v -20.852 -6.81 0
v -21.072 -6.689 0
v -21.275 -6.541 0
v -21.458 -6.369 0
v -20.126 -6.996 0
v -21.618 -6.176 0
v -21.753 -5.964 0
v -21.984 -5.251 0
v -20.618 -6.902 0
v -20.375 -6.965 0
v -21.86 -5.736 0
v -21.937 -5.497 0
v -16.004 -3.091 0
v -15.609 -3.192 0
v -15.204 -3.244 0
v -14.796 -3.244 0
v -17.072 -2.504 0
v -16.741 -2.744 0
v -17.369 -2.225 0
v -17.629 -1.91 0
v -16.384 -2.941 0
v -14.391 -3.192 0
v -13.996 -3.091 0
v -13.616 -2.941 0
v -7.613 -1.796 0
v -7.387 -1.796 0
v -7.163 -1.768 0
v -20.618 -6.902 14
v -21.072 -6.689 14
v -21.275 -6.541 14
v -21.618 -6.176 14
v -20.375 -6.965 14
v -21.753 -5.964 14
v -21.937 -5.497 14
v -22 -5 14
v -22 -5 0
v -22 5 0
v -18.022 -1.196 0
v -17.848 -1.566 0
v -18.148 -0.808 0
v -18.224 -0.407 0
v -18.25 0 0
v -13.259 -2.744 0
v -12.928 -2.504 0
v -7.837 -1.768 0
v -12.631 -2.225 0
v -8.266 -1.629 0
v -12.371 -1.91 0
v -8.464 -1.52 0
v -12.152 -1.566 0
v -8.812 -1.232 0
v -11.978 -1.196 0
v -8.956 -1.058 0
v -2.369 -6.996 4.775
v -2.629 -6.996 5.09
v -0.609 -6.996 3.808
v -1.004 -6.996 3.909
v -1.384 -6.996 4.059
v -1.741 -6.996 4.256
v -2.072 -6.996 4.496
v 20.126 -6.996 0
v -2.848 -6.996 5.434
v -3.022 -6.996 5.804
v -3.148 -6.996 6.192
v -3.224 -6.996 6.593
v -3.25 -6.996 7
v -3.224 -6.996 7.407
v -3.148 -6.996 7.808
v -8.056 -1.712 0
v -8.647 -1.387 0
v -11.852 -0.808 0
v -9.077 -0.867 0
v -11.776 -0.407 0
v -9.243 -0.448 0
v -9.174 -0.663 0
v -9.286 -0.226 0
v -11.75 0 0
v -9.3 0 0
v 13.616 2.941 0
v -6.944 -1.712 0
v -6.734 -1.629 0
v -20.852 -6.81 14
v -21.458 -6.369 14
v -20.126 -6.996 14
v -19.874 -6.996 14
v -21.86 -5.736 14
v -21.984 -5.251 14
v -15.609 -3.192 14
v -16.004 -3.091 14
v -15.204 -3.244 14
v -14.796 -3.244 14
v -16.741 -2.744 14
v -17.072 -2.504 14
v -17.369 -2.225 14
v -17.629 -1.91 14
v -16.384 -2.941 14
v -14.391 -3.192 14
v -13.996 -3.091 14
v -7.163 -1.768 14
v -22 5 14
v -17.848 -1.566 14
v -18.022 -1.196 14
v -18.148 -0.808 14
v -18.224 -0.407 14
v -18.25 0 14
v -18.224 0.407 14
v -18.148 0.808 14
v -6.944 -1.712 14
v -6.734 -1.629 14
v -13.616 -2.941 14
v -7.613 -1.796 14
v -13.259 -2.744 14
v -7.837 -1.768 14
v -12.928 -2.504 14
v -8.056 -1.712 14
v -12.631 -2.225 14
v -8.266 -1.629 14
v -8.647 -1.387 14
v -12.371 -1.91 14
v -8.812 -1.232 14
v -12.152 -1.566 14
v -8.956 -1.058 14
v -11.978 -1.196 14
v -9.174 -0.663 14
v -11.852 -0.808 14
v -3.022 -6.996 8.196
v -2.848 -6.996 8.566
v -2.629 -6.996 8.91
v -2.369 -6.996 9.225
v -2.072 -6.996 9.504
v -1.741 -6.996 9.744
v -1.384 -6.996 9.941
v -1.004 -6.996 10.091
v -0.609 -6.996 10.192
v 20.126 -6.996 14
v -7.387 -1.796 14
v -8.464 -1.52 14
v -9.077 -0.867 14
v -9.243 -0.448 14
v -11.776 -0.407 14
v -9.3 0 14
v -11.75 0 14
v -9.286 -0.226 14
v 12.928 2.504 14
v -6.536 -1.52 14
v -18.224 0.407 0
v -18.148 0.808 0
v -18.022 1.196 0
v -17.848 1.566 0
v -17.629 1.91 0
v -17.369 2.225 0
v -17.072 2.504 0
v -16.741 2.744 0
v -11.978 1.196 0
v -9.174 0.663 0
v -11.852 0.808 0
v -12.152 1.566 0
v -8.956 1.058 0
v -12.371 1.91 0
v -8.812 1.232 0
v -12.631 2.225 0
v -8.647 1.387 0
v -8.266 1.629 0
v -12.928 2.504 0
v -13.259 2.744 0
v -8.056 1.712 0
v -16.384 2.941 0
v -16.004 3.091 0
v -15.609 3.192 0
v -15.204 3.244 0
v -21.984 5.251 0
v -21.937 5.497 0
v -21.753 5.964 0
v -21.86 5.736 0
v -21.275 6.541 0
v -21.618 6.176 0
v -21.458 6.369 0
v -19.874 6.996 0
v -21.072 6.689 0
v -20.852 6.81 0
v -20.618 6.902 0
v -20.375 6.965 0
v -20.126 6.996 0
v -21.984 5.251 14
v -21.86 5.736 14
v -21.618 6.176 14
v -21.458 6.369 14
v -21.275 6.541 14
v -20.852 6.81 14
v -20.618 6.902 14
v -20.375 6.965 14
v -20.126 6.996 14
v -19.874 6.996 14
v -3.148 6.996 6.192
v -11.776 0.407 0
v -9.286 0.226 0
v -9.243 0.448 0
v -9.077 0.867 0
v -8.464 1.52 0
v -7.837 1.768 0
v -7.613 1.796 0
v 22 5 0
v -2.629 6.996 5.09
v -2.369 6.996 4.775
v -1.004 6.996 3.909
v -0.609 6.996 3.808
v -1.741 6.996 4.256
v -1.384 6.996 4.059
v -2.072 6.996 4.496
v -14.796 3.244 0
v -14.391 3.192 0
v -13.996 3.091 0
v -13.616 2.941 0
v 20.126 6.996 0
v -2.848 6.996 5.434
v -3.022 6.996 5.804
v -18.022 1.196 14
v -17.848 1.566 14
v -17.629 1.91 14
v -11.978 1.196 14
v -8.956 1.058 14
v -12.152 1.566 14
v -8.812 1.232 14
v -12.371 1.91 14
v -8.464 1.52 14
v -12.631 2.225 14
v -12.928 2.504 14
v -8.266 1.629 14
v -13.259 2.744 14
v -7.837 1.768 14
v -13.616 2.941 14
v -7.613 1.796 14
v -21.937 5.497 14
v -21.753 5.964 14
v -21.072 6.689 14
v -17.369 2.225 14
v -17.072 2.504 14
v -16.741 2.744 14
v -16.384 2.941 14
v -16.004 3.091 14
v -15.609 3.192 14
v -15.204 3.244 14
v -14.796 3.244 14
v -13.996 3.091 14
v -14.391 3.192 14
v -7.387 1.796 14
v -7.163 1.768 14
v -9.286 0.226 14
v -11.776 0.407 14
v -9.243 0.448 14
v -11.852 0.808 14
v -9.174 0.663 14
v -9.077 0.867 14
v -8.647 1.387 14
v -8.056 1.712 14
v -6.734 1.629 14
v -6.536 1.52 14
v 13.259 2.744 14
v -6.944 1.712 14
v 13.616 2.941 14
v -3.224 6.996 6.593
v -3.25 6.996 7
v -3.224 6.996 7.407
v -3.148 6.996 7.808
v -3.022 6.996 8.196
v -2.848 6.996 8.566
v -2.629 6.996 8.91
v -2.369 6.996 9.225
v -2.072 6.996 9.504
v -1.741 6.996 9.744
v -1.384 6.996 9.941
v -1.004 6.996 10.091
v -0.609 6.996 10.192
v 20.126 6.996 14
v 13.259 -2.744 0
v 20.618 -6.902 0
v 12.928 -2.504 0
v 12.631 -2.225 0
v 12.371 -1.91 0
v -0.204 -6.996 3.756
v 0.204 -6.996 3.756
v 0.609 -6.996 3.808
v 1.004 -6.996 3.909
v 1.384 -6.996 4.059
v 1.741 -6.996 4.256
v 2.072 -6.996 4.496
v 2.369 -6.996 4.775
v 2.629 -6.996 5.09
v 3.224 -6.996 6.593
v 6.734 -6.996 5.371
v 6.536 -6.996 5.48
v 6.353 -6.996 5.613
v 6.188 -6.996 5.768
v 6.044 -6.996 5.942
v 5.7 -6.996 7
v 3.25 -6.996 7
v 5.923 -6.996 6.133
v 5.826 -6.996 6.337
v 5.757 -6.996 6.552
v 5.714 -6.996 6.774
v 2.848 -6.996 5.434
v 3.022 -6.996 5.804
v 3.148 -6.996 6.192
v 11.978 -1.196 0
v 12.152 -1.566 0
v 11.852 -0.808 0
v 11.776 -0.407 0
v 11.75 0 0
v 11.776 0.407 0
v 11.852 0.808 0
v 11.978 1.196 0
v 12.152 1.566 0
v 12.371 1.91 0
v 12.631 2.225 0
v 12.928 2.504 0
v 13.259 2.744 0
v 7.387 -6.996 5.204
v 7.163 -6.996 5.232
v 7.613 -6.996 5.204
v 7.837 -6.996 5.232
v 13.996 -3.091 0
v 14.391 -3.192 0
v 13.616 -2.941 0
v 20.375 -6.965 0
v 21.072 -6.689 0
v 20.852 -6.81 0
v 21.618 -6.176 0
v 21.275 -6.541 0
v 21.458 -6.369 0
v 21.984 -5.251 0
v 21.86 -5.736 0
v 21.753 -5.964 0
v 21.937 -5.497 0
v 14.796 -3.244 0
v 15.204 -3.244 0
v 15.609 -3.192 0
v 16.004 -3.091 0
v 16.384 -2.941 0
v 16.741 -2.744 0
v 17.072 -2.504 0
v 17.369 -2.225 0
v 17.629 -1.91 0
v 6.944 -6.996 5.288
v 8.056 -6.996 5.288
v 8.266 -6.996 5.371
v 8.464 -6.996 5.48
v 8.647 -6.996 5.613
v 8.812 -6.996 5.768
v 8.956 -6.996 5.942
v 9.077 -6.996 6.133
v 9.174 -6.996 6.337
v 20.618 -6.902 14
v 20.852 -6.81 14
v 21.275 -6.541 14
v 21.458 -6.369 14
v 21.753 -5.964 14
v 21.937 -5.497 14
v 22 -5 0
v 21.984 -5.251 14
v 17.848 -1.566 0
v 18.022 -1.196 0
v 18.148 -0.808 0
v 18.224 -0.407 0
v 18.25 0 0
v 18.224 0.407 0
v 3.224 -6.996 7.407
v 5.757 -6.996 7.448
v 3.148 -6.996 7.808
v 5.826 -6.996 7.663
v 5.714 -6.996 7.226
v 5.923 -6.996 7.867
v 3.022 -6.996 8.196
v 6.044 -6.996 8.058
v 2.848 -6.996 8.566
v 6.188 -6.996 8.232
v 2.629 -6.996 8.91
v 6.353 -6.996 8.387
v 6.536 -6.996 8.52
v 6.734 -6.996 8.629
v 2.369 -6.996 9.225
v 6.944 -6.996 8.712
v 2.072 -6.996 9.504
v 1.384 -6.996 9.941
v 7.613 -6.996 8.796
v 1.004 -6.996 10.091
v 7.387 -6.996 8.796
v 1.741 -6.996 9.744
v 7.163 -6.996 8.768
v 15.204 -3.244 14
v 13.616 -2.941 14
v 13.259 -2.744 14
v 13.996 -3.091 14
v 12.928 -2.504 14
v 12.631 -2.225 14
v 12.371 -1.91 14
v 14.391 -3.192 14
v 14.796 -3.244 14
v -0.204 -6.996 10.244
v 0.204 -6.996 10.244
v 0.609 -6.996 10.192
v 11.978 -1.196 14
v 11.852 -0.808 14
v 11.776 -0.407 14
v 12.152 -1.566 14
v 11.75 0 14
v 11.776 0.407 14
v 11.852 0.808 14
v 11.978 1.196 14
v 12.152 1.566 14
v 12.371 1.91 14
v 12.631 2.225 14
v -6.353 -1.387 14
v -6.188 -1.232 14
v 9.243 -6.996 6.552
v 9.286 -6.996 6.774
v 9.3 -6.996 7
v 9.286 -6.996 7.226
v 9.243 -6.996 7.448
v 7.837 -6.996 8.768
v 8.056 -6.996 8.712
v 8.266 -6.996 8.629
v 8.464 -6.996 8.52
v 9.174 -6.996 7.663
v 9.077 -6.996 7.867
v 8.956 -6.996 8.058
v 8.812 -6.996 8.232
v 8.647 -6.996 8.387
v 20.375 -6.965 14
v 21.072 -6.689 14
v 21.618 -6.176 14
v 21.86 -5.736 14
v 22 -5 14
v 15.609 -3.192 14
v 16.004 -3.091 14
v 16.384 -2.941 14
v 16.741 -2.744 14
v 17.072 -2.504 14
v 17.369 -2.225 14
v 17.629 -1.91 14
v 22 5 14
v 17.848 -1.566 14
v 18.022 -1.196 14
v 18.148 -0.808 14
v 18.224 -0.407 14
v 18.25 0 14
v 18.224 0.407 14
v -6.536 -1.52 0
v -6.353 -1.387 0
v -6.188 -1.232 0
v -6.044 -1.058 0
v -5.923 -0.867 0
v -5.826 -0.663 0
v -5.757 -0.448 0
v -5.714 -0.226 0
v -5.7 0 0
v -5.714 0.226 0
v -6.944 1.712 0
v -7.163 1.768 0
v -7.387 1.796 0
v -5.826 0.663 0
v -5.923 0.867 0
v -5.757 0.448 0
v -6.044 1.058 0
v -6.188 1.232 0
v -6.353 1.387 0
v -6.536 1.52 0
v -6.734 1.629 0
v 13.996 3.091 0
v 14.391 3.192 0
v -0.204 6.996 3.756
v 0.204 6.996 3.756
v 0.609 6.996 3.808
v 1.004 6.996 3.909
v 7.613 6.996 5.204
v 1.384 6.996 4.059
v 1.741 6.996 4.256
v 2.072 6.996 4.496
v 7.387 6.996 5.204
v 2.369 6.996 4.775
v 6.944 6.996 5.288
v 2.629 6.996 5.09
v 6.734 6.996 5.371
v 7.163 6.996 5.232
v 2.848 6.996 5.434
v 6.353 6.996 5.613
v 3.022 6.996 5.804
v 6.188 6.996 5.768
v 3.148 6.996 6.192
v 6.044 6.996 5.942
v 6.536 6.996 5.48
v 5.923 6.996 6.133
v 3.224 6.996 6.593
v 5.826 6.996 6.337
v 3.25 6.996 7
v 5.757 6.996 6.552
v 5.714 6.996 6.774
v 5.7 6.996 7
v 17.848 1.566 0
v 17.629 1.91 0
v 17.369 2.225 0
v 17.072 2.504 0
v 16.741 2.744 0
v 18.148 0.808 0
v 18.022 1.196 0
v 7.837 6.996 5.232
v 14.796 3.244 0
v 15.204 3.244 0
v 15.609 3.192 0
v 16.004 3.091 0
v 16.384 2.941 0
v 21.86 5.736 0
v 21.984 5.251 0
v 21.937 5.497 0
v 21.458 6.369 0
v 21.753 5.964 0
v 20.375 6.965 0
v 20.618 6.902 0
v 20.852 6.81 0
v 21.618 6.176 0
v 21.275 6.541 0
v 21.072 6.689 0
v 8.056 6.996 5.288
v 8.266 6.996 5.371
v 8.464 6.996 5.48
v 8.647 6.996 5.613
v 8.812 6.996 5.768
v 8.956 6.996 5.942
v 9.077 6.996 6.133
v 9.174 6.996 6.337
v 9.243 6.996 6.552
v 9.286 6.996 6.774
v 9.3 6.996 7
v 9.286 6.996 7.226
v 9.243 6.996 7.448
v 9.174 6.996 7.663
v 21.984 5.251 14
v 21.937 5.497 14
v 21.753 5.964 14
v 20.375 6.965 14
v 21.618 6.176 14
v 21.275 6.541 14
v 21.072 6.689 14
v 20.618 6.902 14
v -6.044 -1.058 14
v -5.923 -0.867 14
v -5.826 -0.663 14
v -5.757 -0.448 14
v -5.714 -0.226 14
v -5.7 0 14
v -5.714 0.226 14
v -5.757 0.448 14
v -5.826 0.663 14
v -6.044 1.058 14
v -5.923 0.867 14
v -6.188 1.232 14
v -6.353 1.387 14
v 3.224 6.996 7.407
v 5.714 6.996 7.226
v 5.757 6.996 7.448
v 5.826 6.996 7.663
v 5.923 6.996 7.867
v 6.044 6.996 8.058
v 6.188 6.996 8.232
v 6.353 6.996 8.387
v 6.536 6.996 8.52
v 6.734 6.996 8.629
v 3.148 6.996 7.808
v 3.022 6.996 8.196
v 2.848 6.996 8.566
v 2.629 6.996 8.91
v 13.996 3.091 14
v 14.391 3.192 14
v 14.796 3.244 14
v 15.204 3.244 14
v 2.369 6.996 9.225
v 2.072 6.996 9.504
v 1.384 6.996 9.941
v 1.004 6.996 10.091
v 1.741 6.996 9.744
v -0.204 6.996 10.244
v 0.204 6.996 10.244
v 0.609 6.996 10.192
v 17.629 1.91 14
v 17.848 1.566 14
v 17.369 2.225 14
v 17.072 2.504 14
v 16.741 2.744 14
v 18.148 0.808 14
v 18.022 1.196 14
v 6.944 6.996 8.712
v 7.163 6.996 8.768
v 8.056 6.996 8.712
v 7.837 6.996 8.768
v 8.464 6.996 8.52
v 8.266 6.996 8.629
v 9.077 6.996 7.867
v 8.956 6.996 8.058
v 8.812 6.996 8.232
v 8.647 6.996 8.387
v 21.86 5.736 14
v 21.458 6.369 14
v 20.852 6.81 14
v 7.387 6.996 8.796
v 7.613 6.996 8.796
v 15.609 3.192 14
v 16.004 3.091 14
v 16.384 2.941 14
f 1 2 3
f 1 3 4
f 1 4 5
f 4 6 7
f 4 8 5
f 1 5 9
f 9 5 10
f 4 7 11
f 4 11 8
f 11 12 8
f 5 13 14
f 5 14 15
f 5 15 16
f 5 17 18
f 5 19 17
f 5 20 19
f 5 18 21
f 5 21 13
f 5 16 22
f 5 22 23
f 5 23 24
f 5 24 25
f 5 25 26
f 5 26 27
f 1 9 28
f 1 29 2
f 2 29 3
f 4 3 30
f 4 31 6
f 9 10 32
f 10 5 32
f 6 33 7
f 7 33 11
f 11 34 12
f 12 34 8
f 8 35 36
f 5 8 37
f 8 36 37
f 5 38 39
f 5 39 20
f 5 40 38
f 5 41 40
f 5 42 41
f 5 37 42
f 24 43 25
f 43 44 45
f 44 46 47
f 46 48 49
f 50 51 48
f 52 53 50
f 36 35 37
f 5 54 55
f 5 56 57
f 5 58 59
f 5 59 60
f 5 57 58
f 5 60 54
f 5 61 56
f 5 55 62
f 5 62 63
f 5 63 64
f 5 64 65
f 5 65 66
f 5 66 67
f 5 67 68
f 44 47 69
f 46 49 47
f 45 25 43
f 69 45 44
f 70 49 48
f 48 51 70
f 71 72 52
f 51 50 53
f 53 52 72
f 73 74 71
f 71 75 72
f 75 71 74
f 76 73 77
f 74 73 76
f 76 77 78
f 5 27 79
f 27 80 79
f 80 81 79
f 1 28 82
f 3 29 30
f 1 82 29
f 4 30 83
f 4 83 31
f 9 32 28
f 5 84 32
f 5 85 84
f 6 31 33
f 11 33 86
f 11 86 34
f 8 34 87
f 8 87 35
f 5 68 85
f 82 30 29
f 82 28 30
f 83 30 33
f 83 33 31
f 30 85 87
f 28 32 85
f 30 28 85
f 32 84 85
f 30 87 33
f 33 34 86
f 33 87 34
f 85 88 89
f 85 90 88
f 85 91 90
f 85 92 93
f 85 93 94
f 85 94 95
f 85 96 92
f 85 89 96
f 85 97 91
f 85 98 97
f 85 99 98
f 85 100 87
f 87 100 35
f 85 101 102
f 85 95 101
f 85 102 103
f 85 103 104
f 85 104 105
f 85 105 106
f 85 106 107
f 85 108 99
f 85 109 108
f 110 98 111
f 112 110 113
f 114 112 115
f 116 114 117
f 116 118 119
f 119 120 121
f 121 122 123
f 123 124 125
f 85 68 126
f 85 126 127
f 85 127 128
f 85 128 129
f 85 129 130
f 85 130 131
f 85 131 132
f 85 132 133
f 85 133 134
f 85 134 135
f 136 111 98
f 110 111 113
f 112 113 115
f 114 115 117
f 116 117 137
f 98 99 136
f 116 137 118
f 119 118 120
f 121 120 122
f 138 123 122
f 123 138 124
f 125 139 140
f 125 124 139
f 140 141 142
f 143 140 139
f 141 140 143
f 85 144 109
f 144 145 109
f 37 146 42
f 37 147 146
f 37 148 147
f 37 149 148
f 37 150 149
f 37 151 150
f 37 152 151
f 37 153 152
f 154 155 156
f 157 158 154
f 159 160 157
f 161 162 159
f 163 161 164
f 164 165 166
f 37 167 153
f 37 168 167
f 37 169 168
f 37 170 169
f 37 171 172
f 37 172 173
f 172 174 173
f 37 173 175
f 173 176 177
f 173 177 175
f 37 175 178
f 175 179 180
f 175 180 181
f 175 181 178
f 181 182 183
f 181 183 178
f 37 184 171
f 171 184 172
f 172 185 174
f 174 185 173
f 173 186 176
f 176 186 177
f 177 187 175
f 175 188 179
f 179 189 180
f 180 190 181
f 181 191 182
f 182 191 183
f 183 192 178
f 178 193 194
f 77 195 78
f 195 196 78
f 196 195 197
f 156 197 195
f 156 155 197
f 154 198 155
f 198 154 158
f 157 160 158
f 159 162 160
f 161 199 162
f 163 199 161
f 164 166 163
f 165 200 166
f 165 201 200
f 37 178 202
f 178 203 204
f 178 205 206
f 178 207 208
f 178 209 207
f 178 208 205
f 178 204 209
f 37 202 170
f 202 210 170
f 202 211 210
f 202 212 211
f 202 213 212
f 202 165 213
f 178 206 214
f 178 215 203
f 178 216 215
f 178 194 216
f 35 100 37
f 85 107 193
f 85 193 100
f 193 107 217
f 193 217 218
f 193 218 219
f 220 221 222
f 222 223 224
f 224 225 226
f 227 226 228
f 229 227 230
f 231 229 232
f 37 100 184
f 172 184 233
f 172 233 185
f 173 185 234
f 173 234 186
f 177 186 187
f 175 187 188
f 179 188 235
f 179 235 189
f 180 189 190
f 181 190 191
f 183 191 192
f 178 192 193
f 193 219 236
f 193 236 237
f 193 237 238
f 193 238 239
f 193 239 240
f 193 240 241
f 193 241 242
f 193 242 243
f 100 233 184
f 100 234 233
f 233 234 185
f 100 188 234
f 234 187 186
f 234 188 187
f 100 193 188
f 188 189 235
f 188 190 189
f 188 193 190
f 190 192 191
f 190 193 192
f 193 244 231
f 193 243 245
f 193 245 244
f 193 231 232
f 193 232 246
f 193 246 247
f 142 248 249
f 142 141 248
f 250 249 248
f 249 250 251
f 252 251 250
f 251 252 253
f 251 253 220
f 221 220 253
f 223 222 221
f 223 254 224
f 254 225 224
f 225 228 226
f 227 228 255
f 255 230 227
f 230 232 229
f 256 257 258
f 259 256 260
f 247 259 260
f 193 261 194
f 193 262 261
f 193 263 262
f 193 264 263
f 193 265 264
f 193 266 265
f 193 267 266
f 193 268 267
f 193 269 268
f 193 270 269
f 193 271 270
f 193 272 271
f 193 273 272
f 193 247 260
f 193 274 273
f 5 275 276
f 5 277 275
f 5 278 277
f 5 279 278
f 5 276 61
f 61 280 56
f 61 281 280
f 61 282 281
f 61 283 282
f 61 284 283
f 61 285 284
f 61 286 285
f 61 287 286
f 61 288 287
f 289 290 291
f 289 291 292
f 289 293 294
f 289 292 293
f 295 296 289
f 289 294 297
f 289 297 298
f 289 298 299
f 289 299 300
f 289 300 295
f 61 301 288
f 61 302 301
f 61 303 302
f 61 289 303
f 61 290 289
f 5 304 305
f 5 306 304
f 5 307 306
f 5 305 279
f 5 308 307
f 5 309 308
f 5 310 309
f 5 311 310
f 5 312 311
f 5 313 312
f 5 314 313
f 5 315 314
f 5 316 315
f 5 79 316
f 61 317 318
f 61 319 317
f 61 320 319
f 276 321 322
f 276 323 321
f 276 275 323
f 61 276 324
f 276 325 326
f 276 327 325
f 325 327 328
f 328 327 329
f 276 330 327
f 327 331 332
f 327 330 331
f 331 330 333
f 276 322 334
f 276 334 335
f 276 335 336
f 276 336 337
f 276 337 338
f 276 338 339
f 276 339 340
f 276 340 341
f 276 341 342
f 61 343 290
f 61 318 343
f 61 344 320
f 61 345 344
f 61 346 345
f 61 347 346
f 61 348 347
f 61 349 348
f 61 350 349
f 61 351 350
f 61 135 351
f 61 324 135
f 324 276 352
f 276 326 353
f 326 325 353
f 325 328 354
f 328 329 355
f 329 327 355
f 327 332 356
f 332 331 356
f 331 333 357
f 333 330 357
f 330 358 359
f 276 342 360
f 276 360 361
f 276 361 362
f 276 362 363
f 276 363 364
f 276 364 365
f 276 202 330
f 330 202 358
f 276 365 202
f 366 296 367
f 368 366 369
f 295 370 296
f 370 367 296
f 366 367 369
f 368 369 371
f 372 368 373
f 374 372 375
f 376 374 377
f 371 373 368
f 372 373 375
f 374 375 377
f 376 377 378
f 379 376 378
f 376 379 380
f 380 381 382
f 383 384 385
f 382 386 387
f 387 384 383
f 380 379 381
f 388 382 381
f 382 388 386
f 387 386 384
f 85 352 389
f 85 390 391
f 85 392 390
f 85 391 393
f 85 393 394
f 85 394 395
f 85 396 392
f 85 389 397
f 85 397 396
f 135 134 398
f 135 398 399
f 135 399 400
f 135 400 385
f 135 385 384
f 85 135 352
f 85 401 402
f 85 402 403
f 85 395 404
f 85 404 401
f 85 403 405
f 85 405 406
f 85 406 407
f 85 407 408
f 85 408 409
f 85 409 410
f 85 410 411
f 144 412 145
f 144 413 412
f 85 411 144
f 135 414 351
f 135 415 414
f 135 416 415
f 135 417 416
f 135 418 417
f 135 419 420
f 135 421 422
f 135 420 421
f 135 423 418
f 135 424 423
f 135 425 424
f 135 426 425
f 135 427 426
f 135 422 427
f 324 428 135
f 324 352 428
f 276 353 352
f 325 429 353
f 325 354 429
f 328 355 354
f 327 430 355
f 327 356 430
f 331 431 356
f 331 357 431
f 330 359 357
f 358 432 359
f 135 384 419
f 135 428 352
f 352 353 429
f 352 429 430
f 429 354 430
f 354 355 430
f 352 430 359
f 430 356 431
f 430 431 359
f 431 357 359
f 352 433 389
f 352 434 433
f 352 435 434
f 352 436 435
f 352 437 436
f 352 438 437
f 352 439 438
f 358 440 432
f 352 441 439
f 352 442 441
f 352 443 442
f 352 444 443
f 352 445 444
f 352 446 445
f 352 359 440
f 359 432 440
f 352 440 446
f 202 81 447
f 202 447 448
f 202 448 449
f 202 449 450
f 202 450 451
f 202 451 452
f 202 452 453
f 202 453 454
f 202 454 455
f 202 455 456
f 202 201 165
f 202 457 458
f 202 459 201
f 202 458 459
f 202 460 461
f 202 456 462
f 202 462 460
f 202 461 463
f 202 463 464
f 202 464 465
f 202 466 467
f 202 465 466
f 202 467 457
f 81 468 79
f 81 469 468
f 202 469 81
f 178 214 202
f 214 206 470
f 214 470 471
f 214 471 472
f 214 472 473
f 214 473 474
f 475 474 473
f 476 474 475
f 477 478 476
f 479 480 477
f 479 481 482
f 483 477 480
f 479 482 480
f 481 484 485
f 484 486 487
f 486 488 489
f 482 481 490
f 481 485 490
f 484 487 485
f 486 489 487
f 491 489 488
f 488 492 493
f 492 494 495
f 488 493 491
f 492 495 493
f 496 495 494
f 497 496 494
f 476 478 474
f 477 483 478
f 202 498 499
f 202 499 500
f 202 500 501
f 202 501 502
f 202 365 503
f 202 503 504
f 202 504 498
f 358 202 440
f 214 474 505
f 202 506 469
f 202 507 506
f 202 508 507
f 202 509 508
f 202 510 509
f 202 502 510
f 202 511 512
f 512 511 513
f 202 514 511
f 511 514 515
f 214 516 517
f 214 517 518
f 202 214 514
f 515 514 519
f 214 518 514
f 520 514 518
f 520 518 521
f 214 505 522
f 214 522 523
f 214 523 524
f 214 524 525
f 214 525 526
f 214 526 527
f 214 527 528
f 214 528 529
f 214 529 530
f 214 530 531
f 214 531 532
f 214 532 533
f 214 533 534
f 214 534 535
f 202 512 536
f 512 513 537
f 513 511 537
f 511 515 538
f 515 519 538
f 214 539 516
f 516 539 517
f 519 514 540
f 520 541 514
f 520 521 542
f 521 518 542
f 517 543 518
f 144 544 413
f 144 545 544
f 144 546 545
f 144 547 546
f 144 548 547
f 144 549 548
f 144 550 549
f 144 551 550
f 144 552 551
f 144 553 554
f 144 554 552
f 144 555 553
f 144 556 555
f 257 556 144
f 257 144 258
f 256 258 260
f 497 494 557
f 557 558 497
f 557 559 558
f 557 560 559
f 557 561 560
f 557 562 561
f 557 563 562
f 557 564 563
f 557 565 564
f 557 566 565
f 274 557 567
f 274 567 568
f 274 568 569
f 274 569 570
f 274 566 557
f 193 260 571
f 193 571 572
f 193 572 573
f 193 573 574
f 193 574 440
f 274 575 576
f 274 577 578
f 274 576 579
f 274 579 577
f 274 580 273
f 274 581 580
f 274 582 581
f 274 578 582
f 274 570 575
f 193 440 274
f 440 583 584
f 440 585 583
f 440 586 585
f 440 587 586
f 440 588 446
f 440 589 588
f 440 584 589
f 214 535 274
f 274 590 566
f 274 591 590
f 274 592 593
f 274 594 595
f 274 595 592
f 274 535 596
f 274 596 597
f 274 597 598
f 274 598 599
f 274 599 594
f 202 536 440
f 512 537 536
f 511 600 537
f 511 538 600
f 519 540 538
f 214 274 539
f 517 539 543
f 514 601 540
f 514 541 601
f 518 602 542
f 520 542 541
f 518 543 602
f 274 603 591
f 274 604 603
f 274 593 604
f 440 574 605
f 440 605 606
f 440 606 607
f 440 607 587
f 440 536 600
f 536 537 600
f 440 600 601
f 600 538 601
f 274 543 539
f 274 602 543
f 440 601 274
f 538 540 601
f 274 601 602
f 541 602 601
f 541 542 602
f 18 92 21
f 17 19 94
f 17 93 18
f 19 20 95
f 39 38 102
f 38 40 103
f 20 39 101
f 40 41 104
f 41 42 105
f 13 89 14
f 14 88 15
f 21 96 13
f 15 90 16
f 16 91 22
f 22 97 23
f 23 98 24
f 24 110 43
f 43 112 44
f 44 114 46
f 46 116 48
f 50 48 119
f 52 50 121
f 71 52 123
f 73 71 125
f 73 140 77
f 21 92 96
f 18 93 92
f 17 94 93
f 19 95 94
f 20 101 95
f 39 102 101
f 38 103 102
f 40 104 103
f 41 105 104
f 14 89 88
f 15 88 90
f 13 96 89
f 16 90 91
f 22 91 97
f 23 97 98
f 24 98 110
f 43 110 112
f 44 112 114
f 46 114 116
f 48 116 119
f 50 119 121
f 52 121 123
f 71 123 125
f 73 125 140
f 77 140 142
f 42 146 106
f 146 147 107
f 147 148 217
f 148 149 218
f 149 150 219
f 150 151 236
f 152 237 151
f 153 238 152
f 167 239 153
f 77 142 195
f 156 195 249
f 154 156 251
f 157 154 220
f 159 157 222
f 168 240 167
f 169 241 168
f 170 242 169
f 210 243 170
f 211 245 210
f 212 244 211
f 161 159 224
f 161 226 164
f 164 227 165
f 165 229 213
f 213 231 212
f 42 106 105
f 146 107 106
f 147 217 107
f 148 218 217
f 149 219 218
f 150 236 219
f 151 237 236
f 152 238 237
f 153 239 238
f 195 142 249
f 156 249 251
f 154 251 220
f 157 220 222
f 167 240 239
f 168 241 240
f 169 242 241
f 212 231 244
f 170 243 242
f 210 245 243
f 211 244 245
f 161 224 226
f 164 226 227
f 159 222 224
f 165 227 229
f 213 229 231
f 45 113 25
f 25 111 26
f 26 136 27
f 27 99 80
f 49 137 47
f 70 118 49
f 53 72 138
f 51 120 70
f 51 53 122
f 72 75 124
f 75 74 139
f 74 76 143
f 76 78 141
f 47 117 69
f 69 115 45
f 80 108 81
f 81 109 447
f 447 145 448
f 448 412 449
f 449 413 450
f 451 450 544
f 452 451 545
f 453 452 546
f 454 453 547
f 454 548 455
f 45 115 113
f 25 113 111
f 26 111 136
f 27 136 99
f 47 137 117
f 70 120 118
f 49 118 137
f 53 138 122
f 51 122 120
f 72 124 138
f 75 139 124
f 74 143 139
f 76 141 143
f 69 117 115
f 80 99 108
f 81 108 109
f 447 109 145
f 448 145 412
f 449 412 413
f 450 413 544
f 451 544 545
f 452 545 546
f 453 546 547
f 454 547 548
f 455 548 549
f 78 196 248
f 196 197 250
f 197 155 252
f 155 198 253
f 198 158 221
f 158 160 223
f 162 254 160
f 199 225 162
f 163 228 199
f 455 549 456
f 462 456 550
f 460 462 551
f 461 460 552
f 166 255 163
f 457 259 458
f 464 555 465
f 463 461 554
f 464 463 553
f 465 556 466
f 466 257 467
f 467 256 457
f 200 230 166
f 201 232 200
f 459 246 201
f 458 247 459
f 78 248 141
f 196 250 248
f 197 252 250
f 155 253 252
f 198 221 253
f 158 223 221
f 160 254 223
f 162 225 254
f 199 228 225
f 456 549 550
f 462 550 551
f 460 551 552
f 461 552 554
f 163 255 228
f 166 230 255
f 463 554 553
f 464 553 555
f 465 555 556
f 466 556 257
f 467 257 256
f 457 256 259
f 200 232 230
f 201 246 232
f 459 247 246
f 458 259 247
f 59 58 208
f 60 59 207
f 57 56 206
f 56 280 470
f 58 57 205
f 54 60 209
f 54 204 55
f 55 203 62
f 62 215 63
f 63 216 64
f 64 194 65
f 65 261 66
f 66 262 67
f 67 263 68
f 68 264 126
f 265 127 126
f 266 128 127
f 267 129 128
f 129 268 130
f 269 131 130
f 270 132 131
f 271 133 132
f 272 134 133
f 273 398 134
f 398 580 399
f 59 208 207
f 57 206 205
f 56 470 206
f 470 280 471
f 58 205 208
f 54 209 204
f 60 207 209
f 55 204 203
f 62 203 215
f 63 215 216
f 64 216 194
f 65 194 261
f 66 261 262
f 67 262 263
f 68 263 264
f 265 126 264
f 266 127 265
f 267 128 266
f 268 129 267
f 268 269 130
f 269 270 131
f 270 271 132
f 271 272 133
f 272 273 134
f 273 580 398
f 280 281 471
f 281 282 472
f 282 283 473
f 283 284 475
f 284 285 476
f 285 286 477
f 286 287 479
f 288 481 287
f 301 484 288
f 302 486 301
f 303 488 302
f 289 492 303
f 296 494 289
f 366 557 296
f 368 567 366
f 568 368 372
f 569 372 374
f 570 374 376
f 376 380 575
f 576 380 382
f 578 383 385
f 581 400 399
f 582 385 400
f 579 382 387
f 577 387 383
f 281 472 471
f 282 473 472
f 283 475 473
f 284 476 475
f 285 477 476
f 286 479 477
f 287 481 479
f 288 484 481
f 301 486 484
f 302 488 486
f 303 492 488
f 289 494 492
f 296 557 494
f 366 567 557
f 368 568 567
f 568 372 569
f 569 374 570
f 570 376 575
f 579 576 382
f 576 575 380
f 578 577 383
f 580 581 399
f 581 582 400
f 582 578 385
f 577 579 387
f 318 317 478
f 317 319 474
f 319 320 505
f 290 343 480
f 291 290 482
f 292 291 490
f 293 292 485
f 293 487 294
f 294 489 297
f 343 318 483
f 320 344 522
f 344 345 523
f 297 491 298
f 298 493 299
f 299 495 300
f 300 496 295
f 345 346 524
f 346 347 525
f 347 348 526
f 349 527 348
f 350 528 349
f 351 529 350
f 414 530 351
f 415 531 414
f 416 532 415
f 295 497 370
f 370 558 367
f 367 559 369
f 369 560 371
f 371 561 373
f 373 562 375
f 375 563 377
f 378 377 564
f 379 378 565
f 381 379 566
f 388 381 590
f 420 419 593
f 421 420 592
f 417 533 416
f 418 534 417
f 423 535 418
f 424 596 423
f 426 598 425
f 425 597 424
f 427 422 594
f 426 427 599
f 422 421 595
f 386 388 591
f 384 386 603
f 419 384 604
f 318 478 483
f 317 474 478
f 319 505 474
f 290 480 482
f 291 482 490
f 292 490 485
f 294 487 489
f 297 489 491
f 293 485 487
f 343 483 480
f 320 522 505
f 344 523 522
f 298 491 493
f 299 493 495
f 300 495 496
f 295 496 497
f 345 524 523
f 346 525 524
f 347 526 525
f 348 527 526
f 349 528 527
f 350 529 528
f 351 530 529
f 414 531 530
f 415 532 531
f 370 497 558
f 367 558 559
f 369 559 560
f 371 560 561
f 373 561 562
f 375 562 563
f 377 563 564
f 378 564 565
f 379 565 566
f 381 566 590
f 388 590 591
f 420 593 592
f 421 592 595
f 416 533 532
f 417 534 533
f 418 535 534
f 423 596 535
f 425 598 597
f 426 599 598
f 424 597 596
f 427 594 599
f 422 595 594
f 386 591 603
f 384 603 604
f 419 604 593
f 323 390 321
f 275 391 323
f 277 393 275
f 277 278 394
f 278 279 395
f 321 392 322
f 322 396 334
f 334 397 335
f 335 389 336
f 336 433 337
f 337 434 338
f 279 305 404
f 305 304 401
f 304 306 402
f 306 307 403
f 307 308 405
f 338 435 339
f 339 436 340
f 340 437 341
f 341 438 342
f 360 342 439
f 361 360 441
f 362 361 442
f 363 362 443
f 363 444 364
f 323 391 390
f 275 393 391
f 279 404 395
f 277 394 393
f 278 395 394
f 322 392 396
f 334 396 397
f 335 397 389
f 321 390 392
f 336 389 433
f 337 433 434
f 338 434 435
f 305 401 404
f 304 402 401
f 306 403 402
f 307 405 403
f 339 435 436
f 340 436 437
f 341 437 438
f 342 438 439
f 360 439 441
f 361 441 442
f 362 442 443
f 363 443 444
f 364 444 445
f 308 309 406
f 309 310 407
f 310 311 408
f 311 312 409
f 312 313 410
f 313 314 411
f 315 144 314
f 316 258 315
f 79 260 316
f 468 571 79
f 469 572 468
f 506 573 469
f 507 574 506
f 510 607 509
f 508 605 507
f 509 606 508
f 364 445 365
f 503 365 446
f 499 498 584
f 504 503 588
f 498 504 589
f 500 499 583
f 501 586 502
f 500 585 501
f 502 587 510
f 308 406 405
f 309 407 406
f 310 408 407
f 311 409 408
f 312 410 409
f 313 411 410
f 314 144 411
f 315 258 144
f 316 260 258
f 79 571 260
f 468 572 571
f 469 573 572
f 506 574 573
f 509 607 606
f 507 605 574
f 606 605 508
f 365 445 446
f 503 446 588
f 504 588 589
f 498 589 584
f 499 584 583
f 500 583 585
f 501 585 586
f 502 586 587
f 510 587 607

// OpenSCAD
$fn = 50;

difference() {
	union() {
		hull() {
			translate(v = [-20.0, 5.0, 0]) {
				cylinder(h = 14, r = 2.0);
			}
			translate(v = [20.0, 5.0, 0]) {
				cylinder(h = 14, r = 2.0);
			}
			translate(v = [-20.0, -5.0, 0]) {
				cylinder(h = 14, r = 2.0);
			}
			translate(v = [20.0, -5.0, 0]) {
				cylinder(h = 14, r = 2.0);
			}
		}
	}
	union() {
		translate(v = [-15.0, 0, -2.0]) {
			cylinder(h = 18.0, r = 3.25);
		}
		translate(v = [-7.5, 0, -2.0]) {
			cylinder(h = 18.0, r = 1.8);
		}
		translate(v = [0.0, 9.0, 7.0]) {
			rotate(a = [90, 0, 0]) {
				cylinder(h = 18.0, r = 3.25);
			}
		}
		translate(v = [7.5, 9.0, 7.0]) {
			rotate(a = [90, 0, 0]) {
				cylinder(h = 18.0, r = 1.8);
			}
		}
		translate(v = [15.0, 0, -2.0]) {
			cylinder(h = 18.0, r = 3.25);
		}
	}
}
